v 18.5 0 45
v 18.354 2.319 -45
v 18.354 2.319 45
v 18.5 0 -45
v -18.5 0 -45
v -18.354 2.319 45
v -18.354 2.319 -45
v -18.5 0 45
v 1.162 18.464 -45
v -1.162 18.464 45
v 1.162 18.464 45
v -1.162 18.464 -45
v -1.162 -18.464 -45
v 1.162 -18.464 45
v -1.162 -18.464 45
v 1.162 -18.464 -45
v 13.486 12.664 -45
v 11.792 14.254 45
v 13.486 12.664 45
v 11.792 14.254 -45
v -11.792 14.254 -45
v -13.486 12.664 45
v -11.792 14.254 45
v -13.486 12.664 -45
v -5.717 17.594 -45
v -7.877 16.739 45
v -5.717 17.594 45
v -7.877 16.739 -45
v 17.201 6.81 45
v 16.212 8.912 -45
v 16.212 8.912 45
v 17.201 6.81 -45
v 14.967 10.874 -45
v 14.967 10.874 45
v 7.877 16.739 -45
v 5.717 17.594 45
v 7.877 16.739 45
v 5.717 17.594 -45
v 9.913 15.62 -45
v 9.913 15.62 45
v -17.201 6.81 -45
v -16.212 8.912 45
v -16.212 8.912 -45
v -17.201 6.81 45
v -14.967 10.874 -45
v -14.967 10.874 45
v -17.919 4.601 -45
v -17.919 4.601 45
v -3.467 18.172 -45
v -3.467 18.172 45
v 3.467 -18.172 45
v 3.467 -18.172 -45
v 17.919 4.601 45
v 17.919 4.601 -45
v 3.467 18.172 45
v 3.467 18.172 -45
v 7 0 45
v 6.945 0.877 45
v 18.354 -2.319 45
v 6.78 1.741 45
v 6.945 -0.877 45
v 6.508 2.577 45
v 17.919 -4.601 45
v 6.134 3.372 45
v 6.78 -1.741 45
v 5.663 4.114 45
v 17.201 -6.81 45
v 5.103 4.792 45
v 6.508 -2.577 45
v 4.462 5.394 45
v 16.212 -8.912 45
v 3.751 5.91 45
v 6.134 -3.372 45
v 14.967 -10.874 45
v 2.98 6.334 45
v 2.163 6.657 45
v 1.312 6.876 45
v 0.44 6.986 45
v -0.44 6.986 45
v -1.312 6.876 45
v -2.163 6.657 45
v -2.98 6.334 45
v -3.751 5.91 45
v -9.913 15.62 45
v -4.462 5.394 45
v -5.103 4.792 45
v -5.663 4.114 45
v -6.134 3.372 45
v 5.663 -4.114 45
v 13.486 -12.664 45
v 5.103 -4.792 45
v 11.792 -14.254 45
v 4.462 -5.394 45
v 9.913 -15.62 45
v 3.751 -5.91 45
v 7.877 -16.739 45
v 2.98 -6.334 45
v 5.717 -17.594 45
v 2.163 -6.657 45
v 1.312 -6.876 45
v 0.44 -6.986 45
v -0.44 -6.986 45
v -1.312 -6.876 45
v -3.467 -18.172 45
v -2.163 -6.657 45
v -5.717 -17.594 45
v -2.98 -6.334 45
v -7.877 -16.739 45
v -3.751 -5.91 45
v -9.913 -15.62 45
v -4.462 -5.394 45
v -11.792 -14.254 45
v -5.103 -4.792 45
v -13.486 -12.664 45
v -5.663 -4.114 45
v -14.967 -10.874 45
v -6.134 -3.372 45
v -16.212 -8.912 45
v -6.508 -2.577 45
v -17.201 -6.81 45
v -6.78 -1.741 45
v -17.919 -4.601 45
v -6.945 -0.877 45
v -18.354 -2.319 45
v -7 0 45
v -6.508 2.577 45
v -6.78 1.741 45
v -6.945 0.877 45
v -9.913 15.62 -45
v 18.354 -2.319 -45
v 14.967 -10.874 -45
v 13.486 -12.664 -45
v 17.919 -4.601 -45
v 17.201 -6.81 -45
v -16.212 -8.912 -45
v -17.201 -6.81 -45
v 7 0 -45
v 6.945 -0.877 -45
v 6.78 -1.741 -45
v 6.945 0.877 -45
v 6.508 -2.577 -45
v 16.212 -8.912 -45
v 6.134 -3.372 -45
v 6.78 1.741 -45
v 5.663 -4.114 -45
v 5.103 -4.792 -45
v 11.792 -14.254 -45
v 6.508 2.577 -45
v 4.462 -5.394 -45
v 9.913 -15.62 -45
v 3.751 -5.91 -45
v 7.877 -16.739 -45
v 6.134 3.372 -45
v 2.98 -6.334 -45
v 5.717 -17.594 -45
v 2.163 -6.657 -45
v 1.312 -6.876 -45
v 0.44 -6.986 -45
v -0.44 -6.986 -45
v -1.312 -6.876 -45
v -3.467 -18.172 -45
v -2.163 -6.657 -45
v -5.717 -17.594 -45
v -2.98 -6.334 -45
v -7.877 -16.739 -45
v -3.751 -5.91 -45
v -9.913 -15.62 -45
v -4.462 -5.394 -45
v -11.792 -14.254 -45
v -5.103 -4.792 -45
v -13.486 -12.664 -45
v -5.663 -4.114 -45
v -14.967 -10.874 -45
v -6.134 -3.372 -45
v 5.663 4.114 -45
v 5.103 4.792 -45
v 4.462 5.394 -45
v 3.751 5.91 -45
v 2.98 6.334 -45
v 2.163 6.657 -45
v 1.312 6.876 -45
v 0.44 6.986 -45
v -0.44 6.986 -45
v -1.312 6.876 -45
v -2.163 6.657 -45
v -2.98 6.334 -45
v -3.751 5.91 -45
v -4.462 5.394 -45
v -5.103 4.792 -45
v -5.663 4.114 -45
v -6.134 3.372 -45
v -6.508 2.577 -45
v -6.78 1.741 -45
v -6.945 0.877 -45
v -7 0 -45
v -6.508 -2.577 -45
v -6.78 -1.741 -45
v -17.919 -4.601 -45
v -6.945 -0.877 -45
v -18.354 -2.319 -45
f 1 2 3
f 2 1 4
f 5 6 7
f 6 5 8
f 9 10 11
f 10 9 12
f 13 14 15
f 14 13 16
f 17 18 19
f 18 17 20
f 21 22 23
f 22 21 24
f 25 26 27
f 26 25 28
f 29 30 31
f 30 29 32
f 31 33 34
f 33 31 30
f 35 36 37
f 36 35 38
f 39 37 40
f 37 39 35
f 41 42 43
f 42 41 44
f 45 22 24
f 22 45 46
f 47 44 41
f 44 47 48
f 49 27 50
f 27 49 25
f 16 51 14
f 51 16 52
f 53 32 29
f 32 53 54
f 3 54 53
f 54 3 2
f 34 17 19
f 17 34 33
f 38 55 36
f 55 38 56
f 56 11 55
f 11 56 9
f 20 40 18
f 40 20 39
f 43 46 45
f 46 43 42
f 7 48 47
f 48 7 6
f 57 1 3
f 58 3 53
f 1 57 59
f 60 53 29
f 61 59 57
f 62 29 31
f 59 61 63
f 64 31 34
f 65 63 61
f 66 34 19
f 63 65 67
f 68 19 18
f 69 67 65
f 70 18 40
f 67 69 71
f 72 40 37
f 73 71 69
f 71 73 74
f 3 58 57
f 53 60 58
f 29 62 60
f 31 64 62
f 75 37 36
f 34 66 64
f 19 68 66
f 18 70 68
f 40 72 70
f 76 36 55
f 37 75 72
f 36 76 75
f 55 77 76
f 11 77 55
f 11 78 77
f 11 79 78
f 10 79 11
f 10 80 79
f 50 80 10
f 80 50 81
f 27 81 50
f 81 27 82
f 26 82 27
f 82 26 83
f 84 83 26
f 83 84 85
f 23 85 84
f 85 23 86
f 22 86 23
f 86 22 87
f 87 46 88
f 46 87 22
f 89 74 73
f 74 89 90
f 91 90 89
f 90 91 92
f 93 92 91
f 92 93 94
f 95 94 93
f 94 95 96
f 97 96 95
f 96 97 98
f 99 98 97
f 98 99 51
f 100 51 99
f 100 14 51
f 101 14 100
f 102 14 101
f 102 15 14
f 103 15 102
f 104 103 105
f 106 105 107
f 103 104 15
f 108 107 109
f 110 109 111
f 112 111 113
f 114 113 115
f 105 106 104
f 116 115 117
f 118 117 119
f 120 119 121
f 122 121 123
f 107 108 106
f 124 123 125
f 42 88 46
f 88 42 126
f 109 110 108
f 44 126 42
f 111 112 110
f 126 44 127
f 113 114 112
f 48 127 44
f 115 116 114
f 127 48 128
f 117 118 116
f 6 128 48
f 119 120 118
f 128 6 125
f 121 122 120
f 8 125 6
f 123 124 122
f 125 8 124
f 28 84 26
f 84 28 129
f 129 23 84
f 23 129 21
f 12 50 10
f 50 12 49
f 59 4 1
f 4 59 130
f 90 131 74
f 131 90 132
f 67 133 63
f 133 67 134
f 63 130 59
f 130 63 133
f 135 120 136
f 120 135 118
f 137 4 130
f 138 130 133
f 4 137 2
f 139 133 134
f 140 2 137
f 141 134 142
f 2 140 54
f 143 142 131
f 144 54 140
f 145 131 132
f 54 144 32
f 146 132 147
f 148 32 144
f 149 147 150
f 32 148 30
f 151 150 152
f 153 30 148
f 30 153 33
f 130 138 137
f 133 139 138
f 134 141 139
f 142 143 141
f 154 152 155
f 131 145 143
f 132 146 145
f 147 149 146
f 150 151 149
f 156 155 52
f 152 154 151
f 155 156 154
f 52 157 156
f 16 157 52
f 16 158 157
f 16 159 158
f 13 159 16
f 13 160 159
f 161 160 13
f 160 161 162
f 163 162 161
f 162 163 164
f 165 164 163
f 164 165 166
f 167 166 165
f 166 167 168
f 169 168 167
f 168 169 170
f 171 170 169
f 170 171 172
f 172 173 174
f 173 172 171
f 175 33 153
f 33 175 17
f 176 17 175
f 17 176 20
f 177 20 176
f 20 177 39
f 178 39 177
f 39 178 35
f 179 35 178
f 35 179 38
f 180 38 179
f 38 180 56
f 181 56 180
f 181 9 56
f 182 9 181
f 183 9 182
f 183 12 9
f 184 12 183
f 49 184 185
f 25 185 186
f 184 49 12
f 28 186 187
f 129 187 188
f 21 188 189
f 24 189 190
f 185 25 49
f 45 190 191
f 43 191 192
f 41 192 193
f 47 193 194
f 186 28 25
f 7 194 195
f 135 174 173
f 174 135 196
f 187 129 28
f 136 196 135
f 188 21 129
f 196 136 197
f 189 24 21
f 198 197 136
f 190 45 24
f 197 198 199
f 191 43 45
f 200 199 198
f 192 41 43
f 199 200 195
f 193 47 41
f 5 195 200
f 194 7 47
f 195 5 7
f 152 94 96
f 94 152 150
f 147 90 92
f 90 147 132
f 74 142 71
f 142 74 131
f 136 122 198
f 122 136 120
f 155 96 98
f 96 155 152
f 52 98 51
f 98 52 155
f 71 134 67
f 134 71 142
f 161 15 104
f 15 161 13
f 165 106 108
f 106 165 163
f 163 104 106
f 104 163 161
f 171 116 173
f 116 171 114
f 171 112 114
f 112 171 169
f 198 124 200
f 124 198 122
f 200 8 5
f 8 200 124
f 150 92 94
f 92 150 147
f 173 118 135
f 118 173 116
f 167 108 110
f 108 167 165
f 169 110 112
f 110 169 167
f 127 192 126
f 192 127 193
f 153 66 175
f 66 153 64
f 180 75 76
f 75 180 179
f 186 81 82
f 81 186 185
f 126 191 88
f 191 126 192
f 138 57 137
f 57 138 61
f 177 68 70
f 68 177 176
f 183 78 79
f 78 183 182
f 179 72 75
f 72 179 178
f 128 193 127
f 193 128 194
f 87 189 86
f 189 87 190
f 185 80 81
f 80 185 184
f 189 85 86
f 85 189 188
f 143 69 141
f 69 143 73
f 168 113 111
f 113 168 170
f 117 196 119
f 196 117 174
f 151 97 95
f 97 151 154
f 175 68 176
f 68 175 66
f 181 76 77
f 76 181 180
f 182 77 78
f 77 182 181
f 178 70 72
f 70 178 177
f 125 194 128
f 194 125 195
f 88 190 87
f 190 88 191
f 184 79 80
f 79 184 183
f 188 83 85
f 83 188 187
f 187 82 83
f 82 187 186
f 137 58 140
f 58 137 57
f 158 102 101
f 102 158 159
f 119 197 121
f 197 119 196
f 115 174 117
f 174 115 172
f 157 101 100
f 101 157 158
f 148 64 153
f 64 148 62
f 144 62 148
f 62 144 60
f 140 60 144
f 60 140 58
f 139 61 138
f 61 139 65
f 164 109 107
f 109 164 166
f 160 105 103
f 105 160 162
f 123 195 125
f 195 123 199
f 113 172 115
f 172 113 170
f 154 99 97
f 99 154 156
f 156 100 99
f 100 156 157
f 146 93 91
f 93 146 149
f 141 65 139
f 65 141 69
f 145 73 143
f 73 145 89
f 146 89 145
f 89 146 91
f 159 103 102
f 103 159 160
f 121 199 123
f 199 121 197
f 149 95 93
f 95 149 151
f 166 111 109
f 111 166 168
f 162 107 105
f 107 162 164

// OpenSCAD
$fn = 50;


difference() {
	union() {
		translate(v = [0, 0, -45.0000000000]) {
			cylinder(h = 90, r = 18.5000000000);
		}
	}
	union() {
		translate(v = [0, 0, -100.0000000000]) {
			cylinder(h = 200, r = 7);
		}
	}
}
